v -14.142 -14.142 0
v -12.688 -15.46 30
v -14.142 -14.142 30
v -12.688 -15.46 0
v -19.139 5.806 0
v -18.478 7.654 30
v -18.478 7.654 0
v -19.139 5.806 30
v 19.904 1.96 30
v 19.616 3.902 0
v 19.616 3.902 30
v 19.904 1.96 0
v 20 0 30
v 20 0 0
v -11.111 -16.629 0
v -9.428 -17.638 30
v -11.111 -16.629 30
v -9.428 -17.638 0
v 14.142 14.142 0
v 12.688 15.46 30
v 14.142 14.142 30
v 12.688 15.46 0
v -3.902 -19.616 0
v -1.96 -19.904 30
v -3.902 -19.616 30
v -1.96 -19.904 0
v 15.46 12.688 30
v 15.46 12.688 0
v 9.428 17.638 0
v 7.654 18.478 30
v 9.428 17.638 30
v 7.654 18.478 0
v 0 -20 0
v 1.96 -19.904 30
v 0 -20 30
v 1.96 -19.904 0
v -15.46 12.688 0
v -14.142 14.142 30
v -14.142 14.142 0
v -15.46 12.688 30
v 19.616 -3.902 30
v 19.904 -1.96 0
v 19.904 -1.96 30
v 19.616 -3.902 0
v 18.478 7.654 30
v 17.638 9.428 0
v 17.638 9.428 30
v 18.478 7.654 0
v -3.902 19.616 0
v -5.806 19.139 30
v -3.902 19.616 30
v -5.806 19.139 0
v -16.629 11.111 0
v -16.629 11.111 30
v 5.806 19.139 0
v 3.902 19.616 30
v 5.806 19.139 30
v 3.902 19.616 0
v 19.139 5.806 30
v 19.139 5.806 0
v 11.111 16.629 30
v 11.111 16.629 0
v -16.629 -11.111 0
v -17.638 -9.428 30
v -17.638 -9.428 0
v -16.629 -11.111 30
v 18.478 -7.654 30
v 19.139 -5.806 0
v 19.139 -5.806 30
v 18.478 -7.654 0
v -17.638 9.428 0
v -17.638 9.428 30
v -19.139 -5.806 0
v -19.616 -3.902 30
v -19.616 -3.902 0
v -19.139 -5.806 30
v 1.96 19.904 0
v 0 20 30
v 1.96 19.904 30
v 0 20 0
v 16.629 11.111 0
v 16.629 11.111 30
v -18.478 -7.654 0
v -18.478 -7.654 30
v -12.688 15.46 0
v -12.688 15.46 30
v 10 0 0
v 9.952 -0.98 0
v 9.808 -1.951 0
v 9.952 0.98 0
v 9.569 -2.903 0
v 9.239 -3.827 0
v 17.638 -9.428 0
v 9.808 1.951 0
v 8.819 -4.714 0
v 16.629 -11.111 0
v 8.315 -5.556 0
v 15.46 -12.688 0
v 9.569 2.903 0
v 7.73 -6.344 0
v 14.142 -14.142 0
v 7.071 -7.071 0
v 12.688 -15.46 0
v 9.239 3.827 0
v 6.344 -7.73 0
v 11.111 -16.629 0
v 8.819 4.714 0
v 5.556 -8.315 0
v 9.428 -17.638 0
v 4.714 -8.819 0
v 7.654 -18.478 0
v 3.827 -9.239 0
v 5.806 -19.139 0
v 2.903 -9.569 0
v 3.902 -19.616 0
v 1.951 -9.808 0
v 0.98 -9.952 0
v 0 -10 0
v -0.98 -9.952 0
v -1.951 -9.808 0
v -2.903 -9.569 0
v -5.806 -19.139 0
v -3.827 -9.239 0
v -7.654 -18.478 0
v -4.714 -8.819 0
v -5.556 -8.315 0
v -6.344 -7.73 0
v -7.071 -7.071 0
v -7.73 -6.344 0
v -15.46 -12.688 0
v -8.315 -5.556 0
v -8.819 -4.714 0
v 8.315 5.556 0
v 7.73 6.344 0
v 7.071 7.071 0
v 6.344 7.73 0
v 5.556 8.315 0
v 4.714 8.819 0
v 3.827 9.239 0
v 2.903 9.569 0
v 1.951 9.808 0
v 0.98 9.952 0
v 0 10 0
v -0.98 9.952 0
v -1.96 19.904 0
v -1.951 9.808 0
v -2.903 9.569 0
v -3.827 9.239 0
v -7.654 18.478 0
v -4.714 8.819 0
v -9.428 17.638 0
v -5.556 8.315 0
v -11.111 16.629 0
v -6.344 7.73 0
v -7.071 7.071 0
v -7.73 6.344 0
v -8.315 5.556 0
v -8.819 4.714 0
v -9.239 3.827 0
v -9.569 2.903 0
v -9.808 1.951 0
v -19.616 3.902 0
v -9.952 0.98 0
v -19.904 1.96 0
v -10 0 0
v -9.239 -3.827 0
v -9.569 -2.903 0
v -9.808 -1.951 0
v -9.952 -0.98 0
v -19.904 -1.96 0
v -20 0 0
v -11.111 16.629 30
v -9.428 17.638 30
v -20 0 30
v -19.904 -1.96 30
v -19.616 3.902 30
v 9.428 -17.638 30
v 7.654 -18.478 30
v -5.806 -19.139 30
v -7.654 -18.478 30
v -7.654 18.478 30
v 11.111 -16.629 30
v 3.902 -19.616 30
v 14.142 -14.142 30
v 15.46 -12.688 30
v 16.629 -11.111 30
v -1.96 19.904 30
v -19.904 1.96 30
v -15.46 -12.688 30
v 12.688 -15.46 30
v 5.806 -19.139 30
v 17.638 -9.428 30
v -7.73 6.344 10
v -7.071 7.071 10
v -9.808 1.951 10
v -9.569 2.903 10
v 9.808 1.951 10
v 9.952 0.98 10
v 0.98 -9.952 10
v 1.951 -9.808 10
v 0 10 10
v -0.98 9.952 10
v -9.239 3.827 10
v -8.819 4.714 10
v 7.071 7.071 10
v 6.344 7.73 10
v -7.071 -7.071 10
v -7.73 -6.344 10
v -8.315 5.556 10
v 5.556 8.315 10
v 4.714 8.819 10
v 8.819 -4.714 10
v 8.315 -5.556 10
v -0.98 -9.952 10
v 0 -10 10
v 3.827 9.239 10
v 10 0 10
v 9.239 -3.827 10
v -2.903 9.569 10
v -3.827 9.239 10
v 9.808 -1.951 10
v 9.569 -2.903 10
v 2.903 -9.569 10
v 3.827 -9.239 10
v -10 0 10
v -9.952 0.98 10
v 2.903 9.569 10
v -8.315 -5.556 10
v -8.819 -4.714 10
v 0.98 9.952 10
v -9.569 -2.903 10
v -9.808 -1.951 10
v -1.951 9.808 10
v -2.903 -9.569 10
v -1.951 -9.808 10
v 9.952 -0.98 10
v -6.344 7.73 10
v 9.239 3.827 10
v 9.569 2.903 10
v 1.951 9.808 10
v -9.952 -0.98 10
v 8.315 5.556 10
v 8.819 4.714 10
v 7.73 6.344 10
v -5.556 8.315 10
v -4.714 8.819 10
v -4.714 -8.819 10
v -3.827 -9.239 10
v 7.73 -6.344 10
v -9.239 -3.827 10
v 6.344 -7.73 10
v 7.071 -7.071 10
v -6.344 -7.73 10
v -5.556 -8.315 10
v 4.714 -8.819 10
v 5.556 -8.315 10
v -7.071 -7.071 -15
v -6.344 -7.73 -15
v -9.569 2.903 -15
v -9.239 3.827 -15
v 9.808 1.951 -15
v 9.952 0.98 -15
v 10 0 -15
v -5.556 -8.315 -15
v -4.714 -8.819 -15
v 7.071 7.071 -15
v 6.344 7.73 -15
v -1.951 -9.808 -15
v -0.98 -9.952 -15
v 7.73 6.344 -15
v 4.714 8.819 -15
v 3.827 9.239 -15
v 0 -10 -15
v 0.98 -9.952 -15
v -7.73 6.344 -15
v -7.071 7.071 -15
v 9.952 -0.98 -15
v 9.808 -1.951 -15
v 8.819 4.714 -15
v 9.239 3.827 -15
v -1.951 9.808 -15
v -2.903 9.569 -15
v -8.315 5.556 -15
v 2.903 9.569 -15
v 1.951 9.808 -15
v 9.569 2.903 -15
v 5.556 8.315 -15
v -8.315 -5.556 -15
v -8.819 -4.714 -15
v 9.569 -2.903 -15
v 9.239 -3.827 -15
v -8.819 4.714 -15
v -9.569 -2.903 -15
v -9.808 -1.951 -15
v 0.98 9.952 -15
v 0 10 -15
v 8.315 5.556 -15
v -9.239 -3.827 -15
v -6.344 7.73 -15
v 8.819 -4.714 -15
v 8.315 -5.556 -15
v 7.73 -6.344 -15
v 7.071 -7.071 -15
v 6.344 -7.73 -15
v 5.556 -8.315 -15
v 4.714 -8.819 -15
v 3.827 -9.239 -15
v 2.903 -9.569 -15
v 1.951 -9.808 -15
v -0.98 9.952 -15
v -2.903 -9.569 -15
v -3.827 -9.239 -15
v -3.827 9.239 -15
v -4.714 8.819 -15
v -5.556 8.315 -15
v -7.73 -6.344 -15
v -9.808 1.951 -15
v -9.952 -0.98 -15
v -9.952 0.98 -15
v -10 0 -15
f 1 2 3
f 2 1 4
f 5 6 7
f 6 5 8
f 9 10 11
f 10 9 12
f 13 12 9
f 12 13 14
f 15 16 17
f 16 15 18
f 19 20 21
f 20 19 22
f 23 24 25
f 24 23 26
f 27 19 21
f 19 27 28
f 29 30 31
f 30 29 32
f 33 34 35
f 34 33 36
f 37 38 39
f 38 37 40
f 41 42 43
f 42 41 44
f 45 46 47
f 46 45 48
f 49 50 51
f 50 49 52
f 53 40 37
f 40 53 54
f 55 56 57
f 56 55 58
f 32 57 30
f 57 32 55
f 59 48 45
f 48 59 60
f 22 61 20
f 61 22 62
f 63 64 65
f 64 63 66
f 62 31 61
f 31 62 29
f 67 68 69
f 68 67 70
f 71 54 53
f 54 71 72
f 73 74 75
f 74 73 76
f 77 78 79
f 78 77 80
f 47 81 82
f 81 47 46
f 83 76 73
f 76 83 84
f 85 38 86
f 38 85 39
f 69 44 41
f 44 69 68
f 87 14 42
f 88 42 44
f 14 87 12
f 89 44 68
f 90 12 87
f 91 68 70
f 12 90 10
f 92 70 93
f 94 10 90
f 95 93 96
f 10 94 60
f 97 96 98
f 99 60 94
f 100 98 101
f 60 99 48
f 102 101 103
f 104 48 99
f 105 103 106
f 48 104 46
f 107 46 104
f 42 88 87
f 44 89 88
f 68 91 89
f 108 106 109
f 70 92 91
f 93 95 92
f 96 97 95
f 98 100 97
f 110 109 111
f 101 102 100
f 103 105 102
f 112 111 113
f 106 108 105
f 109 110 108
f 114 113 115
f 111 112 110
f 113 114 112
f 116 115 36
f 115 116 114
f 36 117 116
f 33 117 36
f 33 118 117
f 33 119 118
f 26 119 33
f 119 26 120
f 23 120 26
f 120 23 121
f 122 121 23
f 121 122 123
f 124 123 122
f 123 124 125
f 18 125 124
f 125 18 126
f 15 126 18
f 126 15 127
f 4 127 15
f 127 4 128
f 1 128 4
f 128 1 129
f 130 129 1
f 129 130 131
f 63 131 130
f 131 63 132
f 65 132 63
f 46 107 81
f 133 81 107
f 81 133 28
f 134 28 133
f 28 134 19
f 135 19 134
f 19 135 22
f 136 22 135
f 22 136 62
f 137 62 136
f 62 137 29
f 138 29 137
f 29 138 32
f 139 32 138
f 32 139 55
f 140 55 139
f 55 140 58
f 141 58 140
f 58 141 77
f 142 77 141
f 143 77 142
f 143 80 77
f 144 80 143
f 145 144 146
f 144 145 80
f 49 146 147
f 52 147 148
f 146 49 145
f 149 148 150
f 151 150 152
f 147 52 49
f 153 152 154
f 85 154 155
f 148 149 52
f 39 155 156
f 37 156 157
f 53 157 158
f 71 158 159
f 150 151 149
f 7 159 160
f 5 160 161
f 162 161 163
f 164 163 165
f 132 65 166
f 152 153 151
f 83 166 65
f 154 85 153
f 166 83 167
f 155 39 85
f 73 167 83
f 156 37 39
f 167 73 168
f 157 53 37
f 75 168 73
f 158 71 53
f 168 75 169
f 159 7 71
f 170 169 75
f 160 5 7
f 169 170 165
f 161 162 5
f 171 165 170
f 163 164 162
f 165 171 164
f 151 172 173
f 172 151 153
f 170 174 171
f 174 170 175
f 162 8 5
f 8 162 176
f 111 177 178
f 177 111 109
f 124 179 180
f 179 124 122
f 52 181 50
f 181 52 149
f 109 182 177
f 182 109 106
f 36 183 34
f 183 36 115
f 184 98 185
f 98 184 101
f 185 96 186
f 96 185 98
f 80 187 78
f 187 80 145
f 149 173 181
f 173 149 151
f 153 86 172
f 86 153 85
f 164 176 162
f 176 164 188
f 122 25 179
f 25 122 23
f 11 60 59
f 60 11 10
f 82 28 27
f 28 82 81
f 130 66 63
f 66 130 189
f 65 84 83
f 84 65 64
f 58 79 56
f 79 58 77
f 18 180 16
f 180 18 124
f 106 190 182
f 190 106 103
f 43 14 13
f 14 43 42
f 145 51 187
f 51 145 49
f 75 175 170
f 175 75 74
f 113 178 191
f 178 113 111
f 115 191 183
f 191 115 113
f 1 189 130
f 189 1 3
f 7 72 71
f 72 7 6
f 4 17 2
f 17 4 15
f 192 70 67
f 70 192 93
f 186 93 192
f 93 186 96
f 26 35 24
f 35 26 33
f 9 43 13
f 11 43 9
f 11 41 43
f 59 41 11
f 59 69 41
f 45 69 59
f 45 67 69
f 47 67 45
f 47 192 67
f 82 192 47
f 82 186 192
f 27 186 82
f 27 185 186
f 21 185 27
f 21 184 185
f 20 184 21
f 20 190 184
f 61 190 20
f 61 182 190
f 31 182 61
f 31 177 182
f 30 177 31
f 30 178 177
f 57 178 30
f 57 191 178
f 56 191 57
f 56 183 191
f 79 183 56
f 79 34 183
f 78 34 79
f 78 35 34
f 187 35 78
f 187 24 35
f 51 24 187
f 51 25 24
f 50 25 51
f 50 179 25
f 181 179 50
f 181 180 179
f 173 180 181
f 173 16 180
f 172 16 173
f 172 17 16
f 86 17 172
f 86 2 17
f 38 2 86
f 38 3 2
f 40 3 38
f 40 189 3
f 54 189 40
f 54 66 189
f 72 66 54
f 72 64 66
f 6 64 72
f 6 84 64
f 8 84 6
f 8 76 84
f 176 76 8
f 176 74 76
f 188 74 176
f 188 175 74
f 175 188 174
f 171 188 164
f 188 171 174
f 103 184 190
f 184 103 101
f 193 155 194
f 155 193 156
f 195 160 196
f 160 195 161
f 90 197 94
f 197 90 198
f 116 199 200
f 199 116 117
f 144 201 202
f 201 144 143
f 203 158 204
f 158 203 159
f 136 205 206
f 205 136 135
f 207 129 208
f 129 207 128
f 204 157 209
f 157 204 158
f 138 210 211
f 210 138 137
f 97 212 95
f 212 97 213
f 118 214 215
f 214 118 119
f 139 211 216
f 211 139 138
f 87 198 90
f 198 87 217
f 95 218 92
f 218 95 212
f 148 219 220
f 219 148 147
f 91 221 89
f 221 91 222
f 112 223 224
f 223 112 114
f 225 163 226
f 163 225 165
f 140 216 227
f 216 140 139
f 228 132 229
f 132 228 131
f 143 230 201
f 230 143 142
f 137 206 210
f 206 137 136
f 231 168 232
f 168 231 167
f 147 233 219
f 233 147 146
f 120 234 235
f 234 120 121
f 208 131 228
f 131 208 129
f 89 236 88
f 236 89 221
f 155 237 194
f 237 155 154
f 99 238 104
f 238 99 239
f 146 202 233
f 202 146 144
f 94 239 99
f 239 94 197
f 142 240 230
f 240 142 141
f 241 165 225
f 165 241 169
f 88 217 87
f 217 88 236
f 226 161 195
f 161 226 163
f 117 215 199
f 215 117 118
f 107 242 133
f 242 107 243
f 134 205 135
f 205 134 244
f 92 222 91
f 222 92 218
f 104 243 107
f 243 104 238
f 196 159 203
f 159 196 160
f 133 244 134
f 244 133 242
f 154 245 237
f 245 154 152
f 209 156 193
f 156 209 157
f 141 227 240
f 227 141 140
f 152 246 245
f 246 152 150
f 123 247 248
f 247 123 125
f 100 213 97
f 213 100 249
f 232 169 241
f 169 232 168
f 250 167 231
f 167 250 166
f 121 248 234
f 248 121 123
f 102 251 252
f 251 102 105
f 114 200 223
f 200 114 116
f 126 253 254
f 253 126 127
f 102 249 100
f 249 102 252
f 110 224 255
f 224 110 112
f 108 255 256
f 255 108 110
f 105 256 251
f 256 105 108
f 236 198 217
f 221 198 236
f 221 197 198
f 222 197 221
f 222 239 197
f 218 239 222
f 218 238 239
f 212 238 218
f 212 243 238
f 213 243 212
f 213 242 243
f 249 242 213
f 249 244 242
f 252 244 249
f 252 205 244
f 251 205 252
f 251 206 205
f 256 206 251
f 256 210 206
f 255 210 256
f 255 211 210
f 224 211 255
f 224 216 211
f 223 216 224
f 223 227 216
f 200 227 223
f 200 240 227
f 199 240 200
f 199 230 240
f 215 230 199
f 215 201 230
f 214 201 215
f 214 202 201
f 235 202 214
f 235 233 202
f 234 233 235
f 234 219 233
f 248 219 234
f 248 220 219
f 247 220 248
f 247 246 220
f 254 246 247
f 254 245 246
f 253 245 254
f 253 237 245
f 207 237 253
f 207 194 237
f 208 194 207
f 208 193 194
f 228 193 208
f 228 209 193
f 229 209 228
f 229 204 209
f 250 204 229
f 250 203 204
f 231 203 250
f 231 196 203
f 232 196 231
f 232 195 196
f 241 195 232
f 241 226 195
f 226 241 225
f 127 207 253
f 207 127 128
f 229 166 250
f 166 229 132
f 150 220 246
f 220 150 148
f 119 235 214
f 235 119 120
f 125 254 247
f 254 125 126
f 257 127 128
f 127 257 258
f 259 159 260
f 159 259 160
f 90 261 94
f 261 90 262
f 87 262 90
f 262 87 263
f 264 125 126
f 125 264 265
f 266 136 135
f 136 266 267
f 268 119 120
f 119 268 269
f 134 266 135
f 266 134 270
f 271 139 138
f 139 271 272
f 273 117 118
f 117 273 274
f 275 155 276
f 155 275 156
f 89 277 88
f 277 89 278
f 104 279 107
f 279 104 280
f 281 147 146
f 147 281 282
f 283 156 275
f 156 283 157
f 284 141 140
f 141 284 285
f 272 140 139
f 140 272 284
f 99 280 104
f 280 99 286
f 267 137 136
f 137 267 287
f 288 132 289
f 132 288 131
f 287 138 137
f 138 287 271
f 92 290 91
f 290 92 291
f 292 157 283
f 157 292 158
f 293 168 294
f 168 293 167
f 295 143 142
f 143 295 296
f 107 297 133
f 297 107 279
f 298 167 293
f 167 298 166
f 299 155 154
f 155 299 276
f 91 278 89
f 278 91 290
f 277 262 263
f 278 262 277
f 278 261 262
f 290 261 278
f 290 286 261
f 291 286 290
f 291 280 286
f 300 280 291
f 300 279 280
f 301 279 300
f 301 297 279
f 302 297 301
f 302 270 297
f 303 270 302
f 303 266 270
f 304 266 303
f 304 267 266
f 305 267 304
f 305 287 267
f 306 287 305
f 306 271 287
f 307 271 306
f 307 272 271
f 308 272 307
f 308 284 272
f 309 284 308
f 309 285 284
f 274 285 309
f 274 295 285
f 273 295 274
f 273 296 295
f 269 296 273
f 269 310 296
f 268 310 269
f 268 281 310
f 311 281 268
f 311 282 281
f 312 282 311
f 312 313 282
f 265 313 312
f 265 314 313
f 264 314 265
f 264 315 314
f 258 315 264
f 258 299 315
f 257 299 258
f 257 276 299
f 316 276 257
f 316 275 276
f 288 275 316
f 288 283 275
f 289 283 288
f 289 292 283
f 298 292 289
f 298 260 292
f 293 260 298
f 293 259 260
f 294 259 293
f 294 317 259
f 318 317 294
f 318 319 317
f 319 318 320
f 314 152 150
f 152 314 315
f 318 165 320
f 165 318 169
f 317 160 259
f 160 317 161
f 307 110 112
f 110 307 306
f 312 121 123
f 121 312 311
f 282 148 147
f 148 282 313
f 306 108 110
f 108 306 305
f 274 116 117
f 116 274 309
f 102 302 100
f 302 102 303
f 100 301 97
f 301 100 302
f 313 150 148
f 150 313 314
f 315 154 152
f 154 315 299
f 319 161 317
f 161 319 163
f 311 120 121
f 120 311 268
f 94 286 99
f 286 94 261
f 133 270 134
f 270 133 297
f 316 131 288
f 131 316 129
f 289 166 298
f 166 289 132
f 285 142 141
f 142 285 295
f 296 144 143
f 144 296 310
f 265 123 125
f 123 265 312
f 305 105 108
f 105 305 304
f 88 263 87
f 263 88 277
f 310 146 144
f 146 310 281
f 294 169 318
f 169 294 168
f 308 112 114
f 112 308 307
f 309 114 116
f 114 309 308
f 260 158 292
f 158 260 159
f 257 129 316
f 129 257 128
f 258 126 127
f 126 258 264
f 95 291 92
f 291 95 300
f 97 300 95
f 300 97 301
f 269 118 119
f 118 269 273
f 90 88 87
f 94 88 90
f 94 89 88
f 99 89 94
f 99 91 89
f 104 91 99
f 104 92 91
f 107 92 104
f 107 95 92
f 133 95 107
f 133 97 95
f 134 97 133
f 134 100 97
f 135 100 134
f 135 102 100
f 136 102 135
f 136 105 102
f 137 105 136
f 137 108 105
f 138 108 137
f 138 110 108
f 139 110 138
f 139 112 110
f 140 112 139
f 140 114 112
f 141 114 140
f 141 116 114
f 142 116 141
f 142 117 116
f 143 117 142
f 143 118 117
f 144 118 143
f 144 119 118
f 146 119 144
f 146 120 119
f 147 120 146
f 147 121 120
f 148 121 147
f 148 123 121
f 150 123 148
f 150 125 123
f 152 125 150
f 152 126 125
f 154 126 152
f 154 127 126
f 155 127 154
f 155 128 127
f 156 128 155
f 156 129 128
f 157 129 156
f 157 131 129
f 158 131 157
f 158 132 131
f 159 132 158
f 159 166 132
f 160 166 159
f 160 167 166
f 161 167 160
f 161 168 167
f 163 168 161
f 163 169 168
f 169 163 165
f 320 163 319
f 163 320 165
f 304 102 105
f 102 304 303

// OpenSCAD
// Parameters
outer_diameter = 40;
outer_height = 30;

cavity_diameter = 20;
cavity_depth = 10;

shaft_diameter = 20;
shaft_height = 15;

// Outer cylindrical body with recessed cavity
module outer_cylindrical_body() {
    difference() {
        cylinder(h = outer_height, d = outer_diameter, $fn=64);
        translate([0, 0, 0])
            cylinder(h = cavity_depth, d = cavity_diameter, $fn=64);
    }
}

// Inner cylindrical shaft
module inner_cylindrical_shaft() {
    translate([0, 0, -shaft_height])
        cylinder(h = shaft_height, d = shaft_diameter, $fn=64);
}

// Assembling the model
union() {
    outer_cylindrical_body();
    inner_cylindrical_shaft();
}
